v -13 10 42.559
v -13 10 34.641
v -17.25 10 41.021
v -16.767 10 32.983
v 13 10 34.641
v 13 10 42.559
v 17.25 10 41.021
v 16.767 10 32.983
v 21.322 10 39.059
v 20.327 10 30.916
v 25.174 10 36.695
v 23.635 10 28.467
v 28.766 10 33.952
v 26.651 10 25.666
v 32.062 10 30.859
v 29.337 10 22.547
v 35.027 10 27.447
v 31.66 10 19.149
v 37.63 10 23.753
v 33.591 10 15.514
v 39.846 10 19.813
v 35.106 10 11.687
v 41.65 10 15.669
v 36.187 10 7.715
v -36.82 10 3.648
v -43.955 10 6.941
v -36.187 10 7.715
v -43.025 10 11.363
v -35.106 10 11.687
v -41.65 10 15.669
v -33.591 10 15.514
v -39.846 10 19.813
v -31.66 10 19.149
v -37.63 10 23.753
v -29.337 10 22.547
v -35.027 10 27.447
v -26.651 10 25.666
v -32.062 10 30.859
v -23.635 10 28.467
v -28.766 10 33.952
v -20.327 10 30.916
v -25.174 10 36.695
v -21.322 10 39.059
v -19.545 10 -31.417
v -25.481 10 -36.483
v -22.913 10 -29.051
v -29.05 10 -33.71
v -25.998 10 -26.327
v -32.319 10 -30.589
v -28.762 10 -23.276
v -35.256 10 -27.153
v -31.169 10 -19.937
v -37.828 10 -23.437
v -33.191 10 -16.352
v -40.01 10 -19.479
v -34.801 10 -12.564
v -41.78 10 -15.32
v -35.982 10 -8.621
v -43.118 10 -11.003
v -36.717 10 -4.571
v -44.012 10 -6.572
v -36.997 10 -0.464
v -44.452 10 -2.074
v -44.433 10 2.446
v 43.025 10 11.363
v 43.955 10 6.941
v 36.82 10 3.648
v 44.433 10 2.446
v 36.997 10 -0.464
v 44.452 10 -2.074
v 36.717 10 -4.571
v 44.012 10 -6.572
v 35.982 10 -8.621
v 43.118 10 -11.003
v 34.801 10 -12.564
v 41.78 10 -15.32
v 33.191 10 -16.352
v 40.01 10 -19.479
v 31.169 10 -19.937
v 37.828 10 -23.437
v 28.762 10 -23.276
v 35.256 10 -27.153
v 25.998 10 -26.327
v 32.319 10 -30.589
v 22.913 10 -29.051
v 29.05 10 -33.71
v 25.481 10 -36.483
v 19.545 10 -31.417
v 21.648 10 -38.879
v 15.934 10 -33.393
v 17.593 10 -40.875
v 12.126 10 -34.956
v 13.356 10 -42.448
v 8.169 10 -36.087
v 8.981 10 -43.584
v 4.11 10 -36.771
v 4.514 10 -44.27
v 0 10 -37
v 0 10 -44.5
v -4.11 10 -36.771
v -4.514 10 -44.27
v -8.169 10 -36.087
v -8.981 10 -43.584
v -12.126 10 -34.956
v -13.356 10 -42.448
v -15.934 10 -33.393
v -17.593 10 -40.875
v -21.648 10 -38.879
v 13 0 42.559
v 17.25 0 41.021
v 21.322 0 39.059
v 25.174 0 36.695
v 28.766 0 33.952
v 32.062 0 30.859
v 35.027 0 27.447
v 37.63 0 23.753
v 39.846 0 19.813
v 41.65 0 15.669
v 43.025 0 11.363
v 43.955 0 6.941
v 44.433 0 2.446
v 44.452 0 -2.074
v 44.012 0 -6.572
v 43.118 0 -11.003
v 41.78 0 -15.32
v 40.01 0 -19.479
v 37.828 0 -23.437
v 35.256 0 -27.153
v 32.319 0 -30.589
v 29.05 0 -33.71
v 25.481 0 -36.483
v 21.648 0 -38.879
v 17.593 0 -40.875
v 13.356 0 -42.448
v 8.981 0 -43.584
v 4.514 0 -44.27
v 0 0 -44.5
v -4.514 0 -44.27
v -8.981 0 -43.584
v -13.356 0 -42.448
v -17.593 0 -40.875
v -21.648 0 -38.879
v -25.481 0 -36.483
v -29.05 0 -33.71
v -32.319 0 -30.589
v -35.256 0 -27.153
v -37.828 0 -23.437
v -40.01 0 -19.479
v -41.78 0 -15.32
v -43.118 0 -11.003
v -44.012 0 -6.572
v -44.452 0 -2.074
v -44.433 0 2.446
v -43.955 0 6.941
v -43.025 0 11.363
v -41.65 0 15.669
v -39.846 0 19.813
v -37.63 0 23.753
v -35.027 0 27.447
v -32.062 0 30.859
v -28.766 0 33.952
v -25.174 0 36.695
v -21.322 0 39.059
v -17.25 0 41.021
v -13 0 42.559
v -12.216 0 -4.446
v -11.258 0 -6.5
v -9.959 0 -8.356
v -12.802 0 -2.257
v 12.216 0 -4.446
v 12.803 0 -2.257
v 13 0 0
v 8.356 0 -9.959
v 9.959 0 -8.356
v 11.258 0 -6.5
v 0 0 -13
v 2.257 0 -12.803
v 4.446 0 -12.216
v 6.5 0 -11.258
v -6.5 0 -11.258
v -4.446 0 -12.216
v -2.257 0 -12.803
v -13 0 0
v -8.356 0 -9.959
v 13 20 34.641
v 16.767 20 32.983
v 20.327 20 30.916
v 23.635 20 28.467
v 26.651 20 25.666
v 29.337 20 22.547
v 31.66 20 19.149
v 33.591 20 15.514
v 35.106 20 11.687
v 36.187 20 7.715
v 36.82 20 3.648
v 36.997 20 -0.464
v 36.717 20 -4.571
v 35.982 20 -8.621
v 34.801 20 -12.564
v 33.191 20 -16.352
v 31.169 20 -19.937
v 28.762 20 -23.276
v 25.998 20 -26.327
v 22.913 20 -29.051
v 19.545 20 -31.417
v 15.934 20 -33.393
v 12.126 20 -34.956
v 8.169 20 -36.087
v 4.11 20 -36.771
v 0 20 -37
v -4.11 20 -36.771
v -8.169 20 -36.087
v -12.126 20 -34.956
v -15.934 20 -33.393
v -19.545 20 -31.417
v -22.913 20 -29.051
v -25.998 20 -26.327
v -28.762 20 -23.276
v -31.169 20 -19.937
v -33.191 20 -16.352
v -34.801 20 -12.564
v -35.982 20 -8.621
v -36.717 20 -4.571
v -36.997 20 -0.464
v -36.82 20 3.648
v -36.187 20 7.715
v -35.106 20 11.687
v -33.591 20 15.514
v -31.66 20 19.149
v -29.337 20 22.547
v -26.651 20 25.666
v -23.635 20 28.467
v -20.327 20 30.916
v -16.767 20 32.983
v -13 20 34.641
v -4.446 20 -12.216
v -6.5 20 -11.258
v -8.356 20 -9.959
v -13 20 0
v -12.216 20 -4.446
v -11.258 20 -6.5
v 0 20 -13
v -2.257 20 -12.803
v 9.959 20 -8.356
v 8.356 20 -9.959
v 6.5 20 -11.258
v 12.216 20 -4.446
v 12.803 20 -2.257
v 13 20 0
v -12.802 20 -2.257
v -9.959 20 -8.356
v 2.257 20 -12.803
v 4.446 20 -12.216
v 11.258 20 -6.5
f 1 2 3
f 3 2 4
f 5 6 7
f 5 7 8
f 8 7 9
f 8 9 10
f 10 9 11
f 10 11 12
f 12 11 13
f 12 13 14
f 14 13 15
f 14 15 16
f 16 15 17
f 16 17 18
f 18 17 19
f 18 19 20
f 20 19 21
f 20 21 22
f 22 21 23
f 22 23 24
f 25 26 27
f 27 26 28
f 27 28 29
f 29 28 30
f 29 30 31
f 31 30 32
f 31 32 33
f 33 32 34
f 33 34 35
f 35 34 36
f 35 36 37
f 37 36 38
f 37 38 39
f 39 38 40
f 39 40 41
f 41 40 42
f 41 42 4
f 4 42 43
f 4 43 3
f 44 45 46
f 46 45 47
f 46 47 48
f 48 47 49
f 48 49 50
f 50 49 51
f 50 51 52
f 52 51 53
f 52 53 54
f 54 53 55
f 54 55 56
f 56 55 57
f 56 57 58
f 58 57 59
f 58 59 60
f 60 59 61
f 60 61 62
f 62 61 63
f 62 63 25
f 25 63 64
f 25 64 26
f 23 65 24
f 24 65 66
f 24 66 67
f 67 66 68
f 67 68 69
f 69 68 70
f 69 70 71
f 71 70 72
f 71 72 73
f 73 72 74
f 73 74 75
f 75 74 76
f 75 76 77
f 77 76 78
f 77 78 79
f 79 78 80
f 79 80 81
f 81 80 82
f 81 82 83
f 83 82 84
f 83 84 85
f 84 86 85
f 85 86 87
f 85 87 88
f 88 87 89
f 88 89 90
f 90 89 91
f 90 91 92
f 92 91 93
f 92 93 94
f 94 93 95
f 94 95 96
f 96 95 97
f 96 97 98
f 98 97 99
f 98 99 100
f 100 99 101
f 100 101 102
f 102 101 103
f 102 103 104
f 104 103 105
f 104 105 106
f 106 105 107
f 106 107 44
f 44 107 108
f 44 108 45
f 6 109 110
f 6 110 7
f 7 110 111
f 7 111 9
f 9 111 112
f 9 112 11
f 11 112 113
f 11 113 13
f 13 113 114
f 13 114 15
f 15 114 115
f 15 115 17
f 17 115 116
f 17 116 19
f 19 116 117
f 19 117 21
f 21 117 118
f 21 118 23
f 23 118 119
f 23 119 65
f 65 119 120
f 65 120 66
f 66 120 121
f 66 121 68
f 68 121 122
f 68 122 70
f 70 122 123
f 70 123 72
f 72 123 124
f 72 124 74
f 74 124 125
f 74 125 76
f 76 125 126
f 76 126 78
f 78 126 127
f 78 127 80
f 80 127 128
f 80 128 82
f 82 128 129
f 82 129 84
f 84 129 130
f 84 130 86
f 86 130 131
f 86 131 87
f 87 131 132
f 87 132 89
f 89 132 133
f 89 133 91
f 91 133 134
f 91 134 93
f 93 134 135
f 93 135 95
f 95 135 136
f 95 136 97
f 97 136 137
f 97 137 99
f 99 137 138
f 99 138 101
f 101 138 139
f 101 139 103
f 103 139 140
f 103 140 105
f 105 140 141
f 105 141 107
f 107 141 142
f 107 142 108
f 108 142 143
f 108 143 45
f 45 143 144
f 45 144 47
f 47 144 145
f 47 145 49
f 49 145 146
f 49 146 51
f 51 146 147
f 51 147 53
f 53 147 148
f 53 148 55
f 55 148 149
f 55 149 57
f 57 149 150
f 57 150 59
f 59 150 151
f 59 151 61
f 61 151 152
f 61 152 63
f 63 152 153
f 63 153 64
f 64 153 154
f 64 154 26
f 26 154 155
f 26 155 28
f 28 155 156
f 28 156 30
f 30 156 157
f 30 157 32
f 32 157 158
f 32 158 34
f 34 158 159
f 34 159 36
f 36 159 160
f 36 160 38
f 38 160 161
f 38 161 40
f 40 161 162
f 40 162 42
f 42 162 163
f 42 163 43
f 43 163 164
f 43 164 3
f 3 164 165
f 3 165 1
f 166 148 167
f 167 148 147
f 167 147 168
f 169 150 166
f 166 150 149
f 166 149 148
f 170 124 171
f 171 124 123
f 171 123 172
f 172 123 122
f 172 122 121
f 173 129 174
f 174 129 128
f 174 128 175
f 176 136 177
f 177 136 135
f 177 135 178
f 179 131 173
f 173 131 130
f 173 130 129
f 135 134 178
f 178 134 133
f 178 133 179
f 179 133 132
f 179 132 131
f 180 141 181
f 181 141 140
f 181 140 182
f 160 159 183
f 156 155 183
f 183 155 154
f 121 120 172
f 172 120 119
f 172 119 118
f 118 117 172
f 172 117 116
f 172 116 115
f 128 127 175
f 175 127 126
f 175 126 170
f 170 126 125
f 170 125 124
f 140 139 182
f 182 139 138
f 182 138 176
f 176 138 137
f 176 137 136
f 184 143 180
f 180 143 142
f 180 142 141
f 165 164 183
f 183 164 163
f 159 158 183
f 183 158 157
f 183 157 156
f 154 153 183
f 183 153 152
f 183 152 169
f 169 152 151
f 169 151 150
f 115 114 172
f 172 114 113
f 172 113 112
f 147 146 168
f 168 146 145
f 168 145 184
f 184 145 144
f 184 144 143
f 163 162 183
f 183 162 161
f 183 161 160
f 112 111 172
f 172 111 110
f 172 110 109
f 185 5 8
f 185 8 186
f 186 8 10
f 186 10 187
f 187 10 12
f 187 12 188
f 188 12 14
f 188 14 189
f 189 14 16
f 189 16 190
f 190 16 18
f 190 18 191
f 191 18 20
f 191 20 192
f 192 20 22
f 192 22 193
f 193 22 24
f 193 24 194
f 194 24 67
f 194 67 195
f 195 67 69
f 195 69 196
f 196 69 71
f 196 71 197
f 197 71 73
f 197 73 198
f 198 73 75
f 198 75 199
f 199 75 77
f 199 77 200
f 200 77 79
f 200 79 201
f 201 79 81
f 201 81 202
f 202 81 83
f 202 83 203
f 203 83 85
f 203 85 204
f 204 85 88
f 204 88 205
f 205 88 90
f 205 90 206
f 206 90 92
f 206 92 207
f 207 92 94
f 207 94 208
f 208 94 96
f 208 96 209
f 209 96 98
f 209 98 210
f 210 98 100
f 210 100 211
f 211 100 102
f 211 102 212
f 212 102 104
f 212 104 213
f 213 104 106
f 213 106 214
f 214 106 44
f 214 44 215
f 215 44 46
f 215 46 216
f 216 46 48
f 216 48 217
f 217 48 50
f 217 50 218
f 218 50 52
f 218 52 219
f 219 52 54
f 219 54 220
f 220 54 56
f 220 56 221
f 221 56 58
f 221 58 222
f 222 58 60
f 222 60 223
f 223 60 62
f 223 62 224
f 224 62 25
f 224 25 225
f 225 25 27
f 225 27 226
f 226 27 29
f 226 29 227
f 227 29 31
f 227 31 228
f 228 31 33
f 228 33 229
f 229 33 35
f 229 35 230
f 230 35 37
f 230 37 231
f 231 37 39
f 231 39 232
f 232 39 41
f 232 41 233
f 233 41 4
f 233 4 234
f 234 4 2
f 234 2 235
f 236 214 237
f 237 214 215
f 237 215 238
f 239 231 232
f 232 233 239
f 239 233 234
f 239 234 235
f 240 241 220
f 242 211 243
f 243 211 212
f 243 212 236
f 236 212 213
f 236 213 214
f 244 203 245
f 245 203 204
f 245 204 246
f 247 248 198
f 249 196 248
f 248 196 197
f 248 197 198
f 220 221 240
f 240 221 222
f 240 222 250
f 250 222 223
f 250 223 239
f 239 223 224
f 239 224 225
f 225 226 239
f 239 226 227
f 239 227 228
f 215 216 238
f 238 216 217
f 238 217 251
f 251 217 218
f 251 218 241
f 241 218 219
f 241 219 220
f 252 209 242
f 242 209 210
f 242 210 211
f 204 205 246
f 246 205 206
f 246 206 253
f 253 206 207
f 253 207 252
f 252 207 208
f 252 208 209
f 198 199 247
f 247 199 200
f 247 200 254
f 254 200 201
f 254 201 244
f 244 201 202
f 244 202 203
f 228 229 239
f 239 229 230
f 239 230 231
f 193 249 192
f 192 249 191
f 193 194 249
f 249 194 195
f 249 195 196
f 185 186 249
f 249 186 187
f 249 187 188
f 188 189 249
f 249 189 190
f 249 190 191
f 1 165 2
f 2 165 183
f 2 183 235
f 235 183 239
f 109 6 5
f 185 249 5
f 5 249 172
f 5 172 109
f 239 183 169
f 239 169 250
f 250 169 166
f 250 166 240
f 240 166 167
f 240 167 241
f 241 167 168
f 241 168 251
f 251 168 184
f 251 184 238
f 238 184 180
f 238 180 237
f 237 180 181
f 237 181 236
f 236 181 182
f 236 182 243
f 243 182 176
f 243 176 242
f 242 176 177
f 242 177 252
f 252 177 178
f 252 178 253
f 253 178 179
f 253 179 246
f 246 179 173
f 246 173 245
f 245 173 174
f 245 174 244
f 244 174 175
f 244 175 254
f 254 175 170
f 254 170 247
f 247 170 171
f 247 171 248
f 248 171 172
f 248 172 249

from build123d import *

# Parameters (mm, degrees)
SKETCH1_R           = 44.5
BOSS_EXTRUDE1_DEPTH = 10
SKETCH2_R           = 37
BOSS_EXTRUDE2_DEPTH = 10
CUT_EXTRUDE1_DEPTH  = 67.034082109


with BuildPart() as part:
    # Sketch1 → Boss-Extrude1 (new body)
    with BuildSketch(Plane(origin=(0, 0, 0), x_dir=(1, 0, 0), z_dir=(0, 1, 0))):
        with Locations(Location((0, 0, 0), (0, 0, 270))):
            Circle(SKETCH1_R)
    extrude(amount=BOSS_EXTRUDE1_DEPTH)

    # Sketch2 → Boss-Extrude2 (add)
    with BuildSketch(Plane(origin=(0, 10, 0), x_dir=(1, 0, 0), z_dir=(0, 1, 0))):
        with Locations(Location((0, 0, 0), (0, 0, 270))):
            Circle(SKETCH2_R)
    extrude(amount=BOSS_EXTRUDE2_DEPTH)

    # Sketch3 → Cut-Extrude1 (cut, through all)
    with BuildSketch(Plane.XZ):
        with BuildLine():
            Line((-13, 0), (-13, 42.558782877))
            Line((-13, 42.558782877), (-13, 62.217124748))
            Line((-13, 62.217124748), (13, 62.217124748))
            Line((13, 62.217124748), (13, 0))
            ThreePointArc((13, 0), (0, -13), (-13, 0))
        make_face()
    extrude(amount=-CUT_EXTRUDE1_DEPTH, mode=Mode.SUBTRACT)


solid = part.part
